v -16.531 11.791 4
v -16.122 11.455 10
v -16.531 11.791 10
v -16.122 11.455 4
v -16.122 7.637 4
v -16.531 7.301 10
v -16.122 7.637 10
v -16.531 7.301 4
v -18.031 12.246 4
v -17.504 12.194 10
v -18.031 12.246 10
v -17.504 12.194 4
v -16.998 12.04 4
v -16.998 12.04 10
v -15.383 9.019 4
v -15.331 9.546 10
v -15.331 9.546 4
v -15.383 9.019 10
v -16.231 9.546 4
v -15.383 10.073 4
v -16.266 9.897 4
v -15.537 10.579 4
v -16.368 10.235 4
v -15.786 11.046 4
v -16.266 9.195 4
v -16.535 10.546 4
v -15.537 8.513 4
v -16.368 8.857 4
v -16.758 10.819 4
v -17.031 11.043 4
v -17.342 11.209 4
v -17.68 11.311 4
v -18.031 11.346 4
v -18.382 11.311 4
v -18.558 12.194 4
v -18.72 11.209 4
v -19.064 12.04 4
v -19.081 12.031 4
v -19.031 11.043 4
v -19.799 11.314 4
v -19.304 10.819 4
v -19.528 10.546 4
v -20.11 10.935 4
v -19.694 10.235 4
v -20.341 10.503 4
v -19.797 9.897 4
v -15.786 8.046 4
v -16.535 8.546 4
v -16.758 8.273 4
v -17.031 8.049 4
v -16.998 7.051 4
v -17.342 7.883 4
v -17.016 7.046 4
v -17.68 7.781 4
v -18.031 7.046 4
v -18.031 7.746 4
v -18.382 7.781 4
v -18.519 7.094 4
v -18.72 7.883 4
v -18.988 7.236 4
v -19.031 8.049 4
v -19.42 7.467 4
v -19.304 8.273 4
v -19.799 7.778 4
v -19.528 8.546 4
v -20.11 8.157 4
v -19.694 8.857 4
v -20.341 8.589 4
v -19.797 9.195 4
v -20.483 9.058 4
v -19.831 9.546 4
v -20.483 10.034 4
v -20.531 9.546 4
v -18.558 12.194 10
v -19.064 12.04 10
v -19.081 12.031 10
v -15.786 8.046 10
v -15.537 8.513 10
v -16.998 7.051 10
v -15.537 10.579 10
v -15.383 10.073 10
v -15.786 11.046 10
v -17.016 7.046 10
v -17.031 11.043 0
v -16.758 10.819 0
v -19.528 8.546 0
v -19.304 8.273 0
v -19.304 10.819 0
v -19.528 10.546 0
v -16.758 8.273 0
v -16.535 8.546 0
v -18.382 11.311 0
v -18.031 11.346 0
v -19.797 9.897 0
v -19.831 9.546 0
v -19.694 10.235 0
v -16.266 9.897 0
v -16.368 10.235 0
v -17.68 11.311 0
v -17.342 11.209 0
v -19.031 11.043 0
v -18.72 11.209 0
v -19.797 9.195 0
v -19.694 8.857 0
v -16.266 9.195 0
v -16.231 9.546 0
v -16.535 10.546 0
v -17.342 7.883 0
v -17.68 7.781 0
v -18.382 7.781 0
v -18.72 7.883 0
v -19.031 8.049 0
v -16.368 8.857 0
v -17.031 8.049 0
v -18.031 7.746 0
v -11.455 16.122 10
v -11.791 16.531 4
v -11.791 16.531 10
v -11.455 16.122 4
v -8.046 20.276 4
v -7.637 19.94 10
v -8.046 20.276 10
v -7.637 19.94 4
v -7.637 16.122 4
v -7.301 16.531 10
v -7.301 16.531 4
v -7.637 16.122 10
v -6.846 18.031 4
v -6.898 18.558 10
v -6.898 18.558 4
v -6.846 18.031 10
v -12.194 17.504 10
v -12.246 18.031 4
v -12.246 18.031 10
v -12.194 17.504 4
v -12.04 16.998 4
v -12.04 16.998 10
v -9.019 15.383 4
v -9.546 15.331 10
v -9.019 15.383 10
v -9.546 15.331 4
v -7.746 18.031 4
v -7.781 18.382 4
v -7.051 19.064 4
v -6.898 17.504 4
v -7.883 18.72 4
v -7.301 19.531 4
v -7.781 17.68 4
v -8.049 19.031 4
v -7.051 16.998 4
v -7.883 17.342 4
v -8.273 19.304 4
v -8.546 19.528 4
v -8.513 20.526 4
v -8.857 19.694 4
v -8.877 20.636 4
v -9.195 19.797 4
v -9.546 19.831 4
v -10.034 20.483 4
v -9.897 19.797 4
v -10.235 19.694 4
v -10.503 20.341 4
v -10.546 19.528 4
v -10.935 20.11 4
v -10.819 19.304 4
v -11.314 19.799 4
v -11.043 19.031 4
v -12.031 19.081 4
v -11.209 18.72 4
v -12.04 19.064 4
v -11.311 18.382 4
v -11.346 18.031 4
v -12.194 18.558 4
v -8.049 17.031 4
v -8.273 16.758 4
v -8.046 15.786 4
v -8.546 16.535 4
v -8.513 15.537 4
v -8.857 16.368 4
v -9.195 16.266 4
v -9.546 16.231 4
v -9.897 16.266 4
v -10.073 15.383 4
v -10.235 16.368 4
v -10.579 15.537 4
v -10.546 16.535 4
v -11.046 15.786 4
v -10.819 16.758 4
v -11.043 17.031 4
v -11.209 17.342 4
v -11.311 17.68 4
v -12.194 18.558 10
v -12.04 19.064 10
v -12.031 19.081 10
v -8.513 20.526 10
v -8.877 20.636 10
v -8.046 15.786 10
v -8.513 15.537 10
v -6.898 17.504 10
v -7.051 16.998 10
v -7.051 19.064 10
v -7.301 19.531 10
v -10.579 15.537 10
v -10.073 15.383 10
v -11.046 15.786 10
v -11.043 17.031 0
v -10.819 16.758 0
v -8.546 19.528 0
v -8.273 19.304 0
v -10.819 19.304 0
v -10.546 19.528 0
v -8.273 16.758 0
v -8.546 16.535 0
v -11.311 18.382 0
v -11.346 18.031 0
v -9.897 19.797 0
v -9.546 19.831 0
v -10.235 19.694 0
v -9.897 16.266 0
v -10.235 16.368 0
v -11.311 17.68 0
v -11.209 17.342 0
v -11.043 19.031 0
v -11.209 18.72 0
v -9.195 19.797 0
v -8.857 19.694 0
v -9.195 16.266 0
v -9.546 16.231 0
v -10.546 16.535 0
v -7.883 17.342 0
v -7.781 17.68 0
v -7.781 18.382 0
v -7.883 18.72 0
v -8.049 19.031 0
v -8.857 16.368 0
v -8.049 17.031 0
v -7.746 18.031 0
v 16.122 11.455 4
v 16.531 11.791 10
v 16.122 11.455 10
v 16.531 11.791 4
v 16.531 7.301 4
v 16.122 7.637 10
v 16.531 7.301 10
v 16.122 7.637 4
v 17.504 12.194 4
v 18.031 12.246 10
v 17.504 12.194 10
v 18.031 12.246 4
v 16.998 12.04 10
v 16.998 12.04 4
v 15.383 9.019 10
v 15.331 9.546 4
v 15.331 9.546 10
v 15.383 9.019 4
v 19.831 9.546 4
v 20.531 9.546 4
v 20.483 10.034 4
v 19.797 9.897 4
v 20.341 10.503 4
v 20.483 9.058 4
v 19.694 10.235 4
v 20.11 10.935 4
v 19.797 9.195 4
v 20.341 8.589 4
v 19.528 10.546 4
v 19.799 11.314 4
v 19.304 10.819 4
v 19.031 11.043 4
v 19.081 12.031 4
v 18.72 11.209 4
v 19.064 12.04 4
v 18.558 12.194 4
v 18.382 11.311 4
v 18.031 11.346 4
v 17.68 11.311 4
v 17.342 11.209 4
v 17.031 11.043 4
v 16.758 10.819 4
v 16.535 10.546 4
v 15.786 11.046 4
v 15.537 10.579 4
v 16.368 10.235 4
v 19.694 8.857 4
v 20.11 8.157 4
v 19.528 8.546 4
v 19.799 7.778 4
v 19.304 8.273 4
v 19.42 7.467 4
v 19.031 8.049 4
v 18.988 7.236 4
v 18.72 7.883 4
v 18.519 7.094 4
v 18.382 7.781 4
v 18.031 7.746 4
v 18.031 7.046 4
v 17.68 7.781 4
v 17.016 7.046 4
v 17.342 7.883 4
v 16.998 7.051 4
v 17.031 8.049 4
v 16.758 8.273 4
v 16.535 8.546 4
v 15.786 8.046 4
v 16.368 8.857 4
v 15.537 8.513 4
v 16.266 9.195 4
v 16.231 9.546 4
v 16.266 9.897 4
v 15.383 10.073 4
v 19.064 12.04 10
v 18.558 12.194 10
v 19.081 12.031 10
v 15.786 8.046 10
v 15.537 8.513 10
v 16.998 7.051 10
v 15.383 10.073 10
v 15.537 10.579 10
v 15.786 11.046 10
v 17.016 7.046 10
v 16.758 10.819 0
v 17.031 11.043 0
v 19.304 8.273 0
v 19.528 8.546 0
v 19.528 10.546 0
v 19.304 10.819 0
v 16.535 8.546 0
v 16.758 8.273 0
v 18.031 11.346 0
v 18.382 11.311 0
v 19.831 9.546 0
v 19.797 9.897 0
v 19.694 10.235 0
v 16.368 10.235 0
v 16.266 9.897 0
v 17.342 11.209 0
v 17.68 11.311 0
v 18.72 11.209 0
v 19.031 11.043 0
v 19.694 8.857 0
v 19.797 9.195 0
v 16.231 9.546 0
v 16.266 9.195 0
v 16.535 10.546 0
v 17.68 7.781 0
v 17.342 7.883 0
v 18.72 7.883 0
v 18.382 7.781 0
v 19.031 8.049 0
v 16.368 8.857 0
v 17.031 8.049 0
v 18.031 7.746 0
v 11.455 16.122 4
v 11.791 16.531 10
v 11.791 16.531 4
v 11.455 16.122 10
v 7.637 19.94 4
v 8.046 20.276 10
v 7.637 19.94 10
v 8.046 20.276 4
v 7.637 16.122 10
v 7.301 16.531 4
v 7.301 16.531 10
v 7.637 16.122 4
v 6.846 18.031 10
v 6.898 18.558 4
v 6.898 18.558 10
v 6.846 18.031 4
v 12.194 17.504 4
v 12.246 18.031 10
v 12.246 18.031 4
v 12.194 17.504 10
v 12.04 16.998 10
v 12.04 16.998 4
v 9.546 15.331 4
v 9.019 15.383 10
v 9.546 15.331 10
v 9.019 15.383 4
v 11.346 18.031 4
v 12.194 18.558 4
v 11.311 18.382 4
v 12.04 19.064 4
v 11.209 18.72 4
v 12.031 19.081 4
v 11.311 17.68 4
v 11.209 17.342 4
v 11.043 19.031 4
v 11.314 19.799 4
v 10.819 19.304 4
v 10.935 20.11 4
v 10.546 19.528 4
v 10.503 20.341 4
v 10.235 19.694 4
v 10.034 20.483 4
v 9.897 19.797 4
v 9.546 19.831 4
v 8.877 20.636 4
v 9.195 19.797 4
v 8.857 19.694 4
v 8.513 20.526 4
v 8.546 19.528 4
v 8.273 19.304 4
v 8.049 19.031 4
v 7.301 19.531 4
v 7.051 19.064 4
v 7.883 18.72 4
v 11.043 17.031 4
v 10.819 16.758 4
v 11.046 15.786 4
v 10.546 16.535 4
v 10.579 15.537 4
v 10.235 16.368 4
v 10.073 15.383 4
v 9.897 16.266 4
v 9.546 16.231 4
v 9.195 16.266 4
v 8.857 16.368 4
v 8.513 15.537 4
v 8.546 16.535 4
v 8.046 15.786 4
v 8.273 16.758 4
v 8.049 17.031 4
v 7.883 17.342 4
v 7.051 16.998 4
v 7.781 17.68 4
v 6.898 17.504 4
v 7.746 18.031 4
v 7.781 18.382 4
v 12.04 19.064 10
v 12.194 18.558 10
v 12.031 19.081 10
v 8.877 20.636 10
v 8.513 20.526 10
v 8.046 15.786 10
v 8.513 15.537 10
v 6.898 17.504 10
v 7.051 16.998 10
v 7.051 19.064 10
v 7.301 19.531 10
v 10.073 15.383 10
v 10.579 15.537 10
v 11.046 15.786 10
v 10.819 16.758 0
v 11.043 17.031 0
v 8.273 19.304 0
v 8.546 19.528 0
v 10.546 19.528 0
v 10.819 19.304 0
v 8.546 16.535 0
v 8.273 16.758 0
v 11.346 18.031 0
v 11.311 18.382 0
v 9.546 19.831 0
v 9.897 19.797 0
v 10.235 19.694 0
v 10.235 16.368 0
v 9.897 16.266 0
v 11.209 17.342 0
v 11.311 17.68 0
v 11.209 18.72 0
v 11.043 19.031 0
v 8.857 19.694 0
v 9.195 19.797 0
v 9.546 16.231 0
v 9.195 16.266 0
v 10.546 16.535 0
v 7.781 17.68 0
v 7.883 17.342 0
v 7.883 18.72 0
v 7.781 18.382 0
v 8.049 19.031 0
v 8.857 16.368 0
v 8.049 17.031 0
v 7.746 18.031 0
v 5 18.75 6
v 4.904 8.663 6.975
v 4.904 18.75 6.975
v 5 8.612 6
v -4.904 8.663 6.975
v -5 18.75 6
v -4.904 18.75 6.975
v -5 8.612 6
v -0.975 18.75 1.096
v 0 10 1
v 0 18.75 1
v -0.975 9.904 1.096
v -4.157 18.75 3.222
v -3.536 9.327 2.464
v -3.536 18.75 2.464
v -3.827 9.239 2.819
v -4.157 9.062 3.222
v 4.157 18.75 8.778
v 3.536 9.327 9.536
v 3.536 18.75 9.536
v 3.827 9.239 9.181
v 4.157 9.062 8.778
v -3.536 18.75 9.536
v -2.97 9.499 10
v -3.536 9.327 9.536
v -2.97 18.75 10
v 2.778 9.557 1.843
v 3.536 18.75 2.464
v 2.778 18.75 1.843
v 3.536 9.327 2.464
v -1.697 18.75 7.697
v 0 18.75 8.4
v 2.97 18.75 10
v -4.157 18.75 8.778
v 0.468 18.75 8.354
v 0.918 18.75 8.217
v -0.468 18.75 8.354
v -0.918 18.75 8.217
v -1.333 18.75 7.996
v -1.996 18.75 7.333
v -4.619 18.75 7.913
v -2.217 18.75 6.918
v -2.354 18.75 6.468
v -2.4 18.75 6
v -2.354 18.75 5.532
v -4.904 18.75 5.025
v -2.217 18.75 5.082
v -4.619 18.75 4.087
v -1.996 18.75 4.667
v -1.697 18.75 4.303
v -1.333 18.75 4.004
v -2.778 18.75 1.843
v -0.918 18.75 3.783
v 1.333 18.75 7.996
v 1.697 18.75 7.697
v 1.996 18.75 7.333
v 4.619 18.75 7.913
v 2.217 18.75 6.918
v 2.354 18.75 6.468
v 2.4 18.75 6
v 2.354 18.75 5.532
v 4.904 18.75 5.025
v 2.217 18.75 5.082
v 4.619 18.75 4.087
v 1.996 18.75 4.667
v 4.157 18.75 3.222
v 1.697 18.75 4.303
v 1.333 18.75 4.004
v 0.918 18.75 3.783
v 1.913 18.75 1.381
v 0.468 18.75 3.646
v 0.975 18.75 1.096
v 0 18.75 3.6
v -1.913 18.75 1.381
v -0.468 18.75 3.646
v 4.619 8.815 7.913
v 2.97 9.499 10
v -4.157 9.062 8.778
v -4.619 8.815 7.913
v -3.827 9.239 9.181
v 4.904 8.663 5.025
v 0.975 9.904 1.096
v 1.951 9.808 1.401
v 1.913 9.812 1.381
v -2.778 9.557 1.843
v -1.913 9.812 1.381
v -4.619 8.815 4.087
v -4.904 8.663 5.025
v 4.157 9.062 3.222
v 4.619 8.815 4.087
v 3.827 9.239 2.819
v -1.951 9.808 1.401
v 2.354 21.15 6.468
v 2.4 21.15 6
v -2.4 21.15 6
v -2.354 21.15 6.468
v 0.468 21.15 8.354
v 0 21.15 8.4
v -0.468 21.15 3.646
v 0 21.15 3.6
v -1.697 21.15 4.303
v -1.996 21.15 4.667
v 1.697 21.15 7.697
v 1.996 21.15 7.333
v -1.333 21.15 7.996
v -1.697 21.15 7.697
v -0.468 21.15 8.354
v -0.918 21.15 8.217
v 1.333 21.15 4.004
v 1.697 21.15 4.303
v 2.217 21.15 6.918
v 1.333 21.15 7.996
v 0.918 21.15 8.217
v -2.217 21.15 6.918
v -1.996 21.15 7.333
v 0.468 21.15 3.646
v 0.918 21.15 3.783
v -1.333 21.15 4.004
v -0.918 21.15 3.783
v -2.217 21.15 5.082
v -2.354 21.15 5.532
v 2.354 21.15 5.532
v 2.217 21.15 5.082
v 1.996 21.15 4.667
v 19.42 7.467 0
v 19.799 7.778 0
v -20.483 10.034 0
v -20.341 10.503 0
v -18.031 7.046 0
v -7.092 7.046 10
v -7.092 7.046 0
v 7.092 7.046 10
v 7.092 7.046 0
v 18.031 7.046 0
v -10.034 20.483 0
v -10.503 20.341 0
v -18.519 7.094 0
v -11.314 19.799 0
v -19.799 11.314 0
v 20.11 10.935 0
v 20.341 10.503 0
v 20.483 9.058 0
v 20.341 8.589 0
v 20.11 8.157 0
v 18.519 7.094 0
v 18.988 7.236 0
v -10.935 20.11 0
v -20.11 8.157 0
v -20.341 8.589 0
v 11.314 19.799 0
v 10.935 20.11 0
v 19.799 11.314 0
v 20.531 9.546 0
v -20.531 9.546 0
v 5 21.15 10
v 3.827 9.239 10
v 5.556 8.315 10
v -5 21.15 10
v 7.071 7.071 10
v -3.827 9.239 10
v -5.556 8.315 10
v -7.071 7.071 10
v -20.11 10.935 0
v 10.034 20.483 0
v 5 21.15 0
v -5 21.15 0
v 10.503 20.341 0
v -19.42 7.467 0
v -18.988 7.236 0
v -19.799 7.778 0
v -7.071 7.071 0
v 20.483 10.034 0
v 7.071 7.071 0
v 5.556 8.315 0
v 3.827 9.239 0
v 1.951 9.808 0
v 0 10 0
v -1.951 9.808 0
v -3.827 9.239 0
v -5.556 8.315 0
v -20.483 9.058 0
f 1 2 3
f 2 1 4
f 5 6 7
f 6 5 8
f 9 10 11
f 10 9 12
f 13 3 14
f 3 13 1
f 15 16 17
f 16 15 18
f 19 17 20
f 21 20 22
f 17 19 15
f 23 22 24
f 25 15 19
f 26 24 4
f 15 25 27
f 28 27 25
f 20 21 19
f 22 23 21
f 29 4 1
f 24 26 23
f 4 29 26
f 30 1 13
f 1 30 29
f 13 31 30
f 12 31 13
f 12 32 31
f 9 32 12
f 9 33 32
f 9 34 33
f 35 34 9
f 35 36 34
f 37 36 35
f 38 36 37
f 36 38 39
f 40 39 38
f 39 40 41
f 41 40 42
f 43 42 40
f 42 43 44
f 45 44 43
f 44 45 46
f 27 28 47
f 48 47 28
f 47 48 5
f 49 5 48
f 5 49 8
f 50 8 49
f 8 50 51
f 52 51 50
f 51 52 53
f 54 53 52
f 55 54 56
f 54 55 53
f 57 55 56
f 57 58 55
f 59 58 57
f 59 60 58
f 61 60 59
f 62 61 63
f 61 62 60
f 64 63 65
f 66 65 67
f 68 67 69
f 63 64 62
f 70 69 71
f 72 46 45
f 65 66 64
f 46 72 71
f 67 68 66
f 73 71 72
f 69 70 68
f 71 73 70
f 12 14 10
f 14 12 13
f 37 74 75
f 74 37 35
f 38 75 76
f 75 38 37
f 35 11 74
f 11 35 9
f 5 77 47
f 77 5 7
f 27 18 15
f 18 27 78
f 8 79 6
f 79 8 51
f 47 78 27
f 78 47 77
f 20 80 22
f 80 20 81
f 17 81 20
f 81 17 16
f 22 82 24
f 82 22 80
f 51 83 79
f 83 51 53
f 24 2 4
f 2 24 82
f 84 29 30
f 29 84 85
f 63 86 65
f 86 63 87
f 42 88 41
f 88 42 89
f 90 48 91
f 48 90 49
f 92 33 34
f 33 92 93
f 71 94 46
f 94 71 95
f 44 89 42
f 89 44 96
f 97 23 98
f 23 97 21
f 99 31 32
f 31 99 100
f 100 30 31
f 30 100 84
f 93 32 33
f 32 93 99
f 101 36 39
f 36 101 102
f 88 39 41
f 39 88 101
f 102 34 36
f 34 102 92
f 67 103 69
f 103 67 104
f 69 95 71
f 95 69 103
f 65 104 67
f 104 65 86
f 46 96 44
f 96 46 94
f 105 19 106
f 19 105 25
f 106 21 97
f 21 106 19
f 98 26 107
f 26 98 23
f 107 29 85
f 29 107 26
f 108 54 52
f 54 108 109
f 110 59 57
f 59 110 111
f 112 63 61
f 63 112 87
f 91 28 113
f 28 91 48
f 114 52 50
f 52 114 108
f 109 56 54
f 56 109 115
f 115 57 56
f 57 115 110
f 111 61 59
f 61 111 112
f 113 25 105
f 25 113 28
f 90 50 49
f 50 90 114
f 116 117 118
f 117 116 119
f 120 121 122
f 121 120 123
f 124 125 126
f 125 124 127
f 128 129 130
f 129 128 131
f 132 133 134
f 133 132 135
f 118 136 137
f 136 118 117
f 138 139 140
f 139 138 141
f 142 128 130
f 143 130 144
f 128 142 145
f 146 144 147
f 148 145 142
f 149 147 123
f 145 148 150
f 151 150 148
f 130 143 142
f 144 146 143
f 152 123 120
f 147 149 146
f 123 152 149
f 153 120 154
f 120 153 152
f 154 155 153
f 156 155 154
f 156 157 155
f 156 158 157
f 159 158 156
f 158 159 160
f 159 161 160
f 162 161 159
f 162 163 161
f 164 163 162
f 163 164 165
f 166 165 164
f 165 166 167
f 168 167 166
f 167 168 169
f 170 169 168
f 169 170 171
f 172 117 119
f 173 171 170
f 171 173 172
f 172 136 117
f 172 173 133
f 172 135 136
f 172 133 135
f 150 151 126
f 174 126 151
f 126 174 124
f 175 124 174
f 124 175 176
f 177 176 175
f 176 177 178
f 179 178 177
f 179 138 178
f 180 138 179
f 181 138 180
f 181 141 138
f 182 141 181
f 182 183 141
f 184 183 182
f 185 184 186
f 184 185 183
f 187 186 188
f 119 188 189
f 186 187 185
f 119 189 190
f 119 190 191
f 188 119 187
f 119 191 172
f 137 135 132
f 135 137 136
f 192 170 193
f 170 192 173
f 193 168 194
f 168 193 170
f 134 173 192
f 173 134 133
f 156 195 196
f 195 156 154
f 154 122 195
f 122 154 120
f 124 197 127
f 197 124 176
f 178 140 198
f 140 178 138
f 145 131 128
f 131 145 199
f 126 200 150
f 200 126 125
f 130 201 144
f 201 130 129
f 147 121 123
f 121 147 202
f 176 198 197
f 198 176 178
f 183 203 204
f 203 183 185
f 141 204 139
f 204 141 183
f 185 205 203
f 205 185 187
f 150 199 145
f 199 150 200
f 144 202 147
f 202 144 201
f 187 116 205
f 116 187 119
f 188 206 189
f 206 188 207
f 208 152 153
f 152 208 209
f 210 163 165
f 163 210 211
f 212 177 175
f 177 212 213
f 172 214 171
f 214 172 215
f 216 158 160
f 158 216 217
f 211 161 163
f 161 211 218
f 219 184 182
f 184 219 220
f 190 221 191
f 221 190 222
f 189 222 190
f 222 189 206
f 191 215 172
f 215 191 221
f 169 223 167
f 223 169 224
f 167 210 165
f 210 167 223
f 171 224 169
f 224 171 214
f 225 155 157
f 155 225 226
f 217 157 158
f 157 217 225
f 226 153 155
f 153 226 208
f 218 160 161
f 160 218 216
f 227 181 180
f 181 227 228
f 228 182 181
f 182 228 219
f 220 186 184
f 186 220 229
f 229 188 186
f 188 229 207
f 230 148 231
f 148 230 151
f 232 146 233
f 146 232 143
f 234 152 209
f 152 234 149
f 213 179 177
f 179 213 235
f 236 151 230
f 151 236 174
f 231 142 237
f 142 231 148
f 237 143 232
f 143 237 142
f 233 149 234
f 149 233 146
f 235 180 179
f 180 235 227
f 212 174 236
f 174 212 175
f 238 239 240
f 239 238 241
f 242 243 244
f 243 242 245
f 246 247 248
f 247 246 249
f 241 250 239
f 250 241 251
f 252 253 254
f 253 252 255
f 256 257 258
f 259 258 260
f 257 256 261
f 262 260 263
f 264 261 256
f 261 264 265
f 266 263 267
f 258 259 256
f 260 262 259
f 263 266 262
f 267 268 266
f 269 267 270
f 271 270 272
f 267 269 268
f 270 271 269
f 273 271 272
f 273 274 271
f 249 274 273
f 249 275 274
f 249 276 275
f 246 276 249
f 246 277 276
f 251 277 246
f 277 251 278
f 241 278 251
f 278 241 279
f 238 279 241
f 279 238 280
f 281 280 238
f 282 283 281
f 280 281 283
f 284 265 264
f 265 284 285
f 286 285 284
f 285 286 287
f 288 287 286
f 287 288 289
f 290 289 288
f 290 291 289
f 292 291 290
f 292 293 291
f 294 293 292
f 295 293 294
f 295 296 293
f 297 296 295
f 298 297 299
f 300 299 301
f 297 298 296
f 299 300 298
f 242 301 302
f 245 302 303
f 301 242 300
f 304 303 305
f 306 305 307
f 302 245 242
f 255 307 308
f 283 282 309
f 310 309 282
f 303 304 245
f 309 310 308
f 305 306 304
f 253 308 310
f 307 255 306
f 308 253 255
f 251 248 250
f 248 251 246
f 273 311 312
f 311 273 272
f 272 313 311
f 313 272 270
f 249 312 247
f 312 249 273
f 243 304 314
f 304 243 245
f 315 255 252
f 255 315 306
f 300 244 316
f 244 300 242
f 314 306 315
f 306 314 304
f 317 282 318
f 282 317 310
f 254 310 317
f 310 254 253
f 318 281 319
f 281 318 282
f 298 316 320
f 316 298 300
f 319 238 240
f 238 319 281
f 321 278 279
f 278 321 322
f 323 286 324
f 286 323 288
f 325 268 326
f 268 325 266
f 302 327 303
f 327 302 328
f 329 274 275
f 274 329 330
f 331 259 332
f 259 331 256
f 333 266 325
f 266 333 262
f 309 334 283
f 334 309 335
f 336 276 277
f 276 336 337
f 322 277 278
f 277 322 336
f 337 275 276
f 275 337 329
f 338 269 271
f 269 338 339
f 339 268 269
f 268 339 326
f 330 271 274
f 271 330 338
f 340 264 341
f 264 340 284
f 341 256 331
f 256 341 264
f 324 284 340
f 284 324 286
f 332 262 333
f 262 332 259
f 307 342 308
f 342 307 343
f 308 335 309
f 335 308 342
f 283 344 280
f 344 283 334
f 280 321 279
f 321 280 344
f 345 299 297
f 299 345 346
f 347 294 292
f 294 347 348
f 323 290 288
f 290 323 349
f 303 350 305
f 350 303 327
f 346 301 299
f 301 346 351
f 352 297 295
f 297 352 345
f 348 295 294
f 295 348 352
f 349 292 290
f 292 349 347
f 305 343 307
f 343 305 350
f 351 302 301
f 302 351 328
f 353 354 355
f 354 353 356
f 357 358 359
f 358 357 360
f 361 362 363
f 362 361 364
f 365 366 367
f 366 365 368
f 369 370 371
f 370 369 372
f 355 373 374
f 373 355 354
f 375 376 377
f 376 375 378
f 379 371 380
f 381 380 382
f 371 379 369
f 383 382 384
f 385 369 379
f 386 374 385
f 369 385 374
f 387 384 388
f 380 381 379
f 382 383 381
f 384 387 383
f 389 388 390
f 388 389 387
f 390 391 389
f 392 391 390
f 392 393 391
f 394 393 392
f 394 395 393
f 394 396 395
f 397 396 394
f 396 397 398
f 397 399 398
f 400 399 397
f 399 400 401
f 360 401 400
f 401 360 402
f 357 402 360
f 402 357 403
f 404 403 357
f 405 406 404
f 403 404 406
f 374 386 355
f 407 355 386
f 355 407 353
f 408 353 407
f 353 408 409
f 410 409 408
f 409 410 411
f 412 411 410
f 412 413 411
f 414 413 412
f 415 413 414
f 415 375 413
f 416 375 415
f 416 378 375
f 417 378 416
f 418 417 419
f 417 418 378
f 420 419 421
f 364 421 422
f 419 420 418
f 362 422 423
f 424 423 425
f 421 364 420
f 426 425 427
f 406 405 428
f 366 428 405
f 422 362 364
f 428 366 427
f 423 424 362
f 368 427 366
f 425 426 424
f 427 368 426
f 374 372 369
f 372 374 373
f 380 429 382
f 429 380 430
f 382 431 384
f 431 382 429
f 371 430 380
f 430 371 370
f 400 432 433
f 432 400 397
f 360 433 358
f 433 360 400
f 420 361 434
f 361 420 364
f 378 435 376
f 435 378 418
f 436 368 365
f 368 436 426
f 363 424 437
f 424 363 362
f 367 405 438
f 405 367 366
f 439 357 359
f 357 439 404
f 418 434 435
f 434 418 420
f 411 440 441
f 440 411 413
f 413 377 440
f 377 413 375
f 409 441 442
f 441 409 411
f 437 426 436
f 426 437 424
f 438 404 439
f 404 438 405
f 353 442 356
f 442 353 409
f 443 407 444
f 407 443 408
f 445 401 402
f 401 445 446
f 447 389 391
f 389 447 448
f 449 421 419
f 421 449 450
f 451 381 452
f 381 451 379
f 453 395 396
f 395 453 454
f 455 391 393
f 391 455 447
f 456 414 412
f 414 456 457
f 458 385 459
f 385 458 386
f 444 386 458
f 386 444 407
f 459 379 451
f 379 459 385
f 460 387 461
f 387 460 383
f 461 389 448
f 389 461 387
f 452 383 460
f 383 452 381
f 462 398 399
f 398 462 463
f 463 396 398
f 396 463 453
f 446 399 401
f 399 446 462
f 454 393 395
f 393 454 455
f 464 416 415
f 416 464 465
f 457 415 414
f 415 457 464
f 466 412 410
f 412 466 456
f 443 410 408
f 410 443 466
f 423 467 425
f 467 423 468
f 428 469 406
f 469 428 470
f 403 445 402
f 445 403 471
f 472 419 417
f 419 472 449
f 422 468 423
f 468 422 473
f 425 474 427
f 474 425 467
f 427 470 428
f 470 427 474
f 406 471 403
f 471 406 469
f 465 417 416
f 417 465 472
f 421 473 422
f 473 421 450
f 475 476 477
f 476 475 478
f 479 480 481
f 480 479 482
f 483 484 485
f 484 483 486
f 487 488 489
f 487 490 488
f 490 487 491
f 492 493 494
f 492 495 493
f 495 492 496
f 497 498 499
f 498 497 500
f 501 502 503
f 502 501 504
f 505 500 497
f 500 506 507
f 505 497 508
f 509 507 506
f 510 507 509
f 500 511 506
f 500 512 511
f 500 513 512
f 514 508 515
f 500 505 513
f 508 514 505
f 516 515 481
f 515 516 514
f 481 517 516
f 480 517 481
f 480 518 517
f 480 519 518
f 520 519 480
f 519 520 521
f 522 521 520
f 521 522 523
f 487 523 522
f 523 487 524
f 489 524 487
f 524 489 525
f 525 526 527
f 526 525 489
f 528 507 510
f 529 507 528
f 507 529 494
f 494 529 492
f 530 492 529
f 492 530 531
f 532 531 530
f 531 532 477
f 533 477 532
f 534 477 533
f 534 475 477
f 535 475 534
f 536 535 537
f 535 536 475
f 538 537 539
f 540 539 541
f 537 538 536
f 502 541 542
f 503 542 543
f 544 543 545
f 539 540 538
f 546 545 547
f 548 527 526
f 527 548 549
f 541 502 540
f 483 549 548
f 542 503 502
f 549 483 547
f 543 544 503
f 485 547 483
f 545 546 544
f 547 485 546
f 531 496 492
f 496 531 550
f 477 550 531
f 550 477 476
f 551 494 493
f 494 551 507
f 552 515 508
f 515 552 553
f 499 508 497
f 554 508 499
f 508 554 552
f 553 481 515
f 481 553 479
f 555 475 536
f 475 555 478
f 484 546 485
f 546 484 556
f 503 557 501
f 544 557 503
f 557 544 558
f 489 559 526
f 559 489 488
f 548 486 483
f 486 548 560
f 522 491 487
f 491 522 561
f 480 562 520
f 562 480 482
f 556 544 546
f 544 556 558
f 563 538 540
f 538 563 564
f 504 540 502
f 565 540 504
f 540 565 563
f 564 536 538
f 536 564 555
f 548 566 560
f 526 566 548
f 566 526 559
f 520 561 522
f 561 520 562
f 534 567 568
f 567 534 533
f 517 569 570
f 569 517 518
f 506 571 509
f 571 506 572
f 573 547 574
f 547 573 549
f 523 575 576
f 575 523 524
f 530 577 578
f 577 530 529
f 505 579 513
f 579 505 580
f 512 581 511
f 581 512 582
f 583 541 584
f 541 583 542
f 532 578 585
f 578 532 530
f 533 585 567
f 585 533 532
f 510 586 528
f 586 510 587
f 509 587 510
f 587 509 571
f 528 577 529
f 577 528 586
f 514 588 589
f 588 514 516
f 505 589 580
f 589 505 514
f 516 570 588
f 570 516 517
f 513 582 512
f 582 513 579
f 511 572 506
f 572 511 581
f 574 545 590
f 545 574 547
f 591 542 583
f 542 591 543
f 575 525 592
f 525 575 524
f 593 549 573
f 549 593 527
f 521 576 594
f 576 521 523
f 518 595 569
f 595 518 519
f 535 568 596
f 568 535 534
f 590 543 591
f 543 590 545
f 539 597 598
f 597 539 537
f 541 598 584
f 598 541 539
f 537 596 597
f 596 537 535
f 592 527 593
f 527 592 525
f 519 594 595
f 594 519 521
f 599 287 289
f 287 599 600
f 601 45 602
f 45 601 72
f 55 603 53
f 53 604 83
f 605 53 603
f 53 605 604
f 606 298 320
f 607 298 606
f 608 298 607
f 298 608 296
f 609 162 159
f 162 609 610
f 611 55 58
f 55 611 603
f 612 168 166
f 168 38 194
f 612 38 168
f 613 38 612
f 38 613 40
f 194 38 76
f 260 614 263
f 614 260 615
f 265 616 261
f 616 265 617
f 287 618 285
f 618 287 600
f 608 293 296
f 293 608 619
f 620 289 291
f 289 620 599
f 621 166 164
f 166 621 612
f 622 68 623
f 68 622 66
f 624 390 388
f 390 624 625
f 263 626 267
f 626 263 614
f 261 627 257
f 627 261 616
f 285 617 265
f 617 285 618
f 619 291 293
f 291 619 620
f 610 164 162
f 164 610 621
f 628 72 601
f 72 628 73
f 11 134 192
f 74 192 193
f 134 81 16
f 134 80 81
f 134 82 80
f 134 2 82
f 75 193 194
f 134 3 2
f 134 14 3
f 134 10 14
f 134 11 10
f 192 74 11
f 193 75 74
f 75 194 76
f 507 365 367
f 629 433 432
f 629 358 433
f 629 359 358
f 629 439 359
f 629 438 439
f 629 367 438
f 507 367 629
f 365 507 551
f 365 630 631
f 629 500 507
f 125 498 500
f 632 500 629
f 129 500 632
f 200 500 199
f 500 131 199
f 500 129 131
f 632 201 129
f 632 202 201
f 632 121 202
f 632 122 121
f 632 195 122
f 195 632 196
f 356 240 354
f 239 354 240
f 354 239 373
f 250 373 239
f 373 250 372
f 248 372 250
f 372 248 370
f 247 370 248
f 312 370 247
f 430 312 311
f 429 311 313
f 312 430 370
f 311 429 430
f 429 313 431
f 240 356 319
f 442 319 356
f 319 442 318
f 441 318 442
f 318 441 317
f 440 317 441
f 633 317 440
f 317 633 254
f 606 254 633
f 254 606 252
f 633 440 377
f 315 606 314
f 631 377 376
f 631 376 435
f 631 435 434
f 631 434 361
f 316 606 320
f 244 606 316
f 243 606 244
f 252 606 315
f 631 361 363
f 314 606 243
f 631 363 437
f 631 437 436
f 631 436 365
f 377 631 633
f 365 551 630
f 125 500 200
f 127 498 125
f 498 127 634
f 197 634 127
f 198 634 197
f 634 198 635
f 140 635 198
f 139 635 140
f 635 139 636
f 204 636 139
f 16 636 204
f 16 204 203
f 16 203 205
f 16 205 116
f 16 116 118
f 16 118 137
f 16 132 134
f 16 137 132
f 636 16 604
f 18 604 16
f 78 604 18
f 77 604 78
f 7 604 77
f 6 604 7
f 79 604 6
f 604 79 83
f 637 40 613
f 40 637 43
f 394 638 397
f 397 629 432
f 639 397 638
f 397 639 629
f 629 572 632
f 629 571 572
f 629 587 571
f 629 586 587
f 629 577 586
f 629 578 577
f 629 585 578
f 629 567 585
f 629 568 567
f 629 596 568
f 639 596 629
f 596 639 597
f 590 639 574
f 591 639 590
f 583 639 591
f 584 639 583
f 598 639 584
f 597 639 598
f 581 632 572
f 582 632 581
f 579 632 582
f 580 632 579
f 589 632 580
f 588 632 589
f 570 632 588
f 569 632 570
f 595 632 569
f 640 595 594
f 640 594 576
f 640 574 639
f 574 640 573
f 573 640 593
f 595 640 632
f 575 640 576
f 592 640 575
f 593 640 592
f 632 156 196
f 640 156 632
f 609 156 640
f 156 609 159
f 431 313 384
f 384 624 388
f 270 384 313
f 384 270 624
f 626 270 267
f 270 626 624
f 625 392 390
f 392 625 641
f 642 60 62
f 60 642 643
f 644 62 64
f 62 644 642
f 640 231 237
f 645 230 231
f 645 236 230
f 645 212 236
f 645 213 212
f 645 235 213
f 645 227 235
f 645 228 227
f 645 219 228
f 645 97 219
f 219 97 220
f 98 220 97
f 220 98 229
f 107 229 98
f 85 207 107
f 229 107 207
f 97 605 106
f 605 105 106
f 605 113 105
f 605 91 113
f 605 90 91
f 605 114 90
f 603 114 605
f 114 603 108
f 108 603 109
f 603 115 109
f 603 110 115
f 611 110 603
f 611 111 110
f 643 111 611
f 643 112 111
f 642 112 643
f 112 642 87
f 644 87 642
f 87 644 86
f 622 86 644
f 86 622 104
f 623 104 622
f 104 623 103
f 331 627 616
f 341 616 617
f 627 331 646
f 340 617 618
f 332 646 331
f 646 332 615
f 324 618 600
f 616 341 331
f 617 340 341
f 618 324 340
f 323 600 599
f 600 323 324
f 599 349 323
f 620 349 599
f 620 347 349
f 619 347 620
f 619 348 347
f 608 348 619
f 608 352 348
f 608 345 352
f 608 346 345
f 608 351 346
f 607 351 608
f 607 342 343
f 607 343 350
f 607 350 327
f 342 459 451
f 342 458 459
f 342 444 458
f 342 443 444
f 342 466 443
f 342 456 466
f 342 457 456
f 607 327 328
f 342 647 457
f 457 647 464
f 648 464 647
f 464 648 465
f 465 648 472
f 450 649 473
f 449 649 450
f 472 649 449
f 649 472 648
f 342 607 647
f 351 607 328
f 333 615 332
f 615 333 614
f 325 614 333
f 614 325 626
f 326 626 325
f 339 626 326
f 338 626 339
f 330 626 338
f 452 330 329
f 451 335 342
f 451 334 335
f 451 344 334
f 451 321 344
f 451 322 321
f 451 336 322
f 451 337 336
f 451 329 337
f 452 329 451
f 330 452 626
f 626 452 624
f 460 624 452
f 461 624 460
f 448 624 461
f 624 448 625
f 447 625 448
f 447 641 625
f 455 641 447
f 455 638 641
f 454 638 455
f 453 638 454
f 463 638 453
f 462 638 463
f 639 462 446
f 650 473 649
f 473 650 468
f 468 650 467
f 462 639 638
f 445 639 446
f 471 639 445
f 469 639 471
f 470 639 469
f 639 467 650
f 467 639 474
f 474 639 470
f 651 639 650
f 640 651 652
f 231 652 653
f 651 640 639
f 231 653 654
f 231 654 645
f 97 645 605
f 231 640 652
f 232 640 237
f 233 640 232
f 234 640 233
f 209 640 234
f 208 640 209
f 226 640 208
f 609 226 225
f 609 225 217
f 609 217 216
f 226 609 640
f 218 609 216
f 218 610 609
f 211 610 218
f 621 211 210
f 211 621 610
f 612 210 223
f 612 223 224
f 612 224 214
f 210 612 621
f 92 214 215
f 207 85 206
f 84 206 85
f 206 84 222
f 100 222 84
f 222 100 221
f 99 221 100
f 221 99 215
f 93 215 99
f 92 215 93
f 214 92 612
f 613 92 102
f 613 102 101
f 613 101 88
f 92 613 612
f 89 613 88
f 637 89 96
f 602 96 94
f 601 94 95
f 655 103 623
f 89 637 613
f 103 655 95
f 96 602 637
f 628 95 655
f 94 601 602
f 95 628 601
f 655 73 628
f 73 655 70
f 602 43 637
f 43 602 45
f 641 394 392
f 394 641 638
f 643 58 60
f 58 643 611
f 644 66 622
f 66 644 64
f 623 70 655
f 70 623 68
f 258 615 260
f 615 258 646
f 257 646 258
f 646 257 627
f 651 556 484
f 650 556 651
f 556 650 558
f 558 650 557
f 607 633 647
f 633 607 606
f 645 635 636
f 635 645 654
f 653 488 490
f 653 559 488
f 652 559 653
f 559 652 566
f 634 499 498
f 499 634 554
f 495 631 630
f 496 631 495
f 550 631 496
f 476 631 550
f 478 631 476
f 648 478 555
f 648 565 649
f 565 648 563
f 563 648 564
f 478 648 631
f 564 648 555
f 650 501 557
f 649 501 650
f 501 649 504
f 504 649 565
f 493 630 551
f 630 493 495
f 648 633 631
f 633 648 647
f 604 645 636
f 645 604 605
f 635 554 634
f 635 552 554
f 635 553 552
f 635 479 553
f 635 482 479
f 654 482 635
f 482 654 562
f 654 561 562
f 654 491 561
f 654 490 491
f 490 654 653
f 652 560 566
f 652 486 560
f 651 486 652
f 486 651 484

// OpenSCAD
// simple adapter to mount ball-on-a-stick to the stage
use <./utilities.scad>;
use <./main_body.scad>;
include <./microscope_parameters.scad>; //All the geometric variables are now in here.


h=10; //height of adapter
stick_l=10+17.5/2; //distance from bottom of stick to centre
stick_r=5;
stick_z=h-stick_r+1;

difference(){
    hull(){
        each_actuator() reflect([1,0,0]) translate([-leg_middle_w/2,-zflex_l-4,0]) cylinder(r=2.5,h=h); //mounting bolts
        translate([-5,stick_l,0]) cube([10,2.4,h]);
    }
    
    //the stick
    translate([0,stick_l,stick_z]) rotate([90,0,0]){
        cylinder(r=stick_r, h=999);
        cylinder(r=4/2*1.2, h=999, center=true);
    }
    //the central hole
    cylinder(r=hole_r, h=999, center=true);
    //mounting holes
    each_actuator() reflect([1,0,0]) translate([-leg_middle_w/2,-zflex_l-4,4]){
        cylinder(r=2.7,h=999); //mounting bolts
        cylinder(r=3/2*1.2,h=999,center=true); //mounting bolts
    }
}
